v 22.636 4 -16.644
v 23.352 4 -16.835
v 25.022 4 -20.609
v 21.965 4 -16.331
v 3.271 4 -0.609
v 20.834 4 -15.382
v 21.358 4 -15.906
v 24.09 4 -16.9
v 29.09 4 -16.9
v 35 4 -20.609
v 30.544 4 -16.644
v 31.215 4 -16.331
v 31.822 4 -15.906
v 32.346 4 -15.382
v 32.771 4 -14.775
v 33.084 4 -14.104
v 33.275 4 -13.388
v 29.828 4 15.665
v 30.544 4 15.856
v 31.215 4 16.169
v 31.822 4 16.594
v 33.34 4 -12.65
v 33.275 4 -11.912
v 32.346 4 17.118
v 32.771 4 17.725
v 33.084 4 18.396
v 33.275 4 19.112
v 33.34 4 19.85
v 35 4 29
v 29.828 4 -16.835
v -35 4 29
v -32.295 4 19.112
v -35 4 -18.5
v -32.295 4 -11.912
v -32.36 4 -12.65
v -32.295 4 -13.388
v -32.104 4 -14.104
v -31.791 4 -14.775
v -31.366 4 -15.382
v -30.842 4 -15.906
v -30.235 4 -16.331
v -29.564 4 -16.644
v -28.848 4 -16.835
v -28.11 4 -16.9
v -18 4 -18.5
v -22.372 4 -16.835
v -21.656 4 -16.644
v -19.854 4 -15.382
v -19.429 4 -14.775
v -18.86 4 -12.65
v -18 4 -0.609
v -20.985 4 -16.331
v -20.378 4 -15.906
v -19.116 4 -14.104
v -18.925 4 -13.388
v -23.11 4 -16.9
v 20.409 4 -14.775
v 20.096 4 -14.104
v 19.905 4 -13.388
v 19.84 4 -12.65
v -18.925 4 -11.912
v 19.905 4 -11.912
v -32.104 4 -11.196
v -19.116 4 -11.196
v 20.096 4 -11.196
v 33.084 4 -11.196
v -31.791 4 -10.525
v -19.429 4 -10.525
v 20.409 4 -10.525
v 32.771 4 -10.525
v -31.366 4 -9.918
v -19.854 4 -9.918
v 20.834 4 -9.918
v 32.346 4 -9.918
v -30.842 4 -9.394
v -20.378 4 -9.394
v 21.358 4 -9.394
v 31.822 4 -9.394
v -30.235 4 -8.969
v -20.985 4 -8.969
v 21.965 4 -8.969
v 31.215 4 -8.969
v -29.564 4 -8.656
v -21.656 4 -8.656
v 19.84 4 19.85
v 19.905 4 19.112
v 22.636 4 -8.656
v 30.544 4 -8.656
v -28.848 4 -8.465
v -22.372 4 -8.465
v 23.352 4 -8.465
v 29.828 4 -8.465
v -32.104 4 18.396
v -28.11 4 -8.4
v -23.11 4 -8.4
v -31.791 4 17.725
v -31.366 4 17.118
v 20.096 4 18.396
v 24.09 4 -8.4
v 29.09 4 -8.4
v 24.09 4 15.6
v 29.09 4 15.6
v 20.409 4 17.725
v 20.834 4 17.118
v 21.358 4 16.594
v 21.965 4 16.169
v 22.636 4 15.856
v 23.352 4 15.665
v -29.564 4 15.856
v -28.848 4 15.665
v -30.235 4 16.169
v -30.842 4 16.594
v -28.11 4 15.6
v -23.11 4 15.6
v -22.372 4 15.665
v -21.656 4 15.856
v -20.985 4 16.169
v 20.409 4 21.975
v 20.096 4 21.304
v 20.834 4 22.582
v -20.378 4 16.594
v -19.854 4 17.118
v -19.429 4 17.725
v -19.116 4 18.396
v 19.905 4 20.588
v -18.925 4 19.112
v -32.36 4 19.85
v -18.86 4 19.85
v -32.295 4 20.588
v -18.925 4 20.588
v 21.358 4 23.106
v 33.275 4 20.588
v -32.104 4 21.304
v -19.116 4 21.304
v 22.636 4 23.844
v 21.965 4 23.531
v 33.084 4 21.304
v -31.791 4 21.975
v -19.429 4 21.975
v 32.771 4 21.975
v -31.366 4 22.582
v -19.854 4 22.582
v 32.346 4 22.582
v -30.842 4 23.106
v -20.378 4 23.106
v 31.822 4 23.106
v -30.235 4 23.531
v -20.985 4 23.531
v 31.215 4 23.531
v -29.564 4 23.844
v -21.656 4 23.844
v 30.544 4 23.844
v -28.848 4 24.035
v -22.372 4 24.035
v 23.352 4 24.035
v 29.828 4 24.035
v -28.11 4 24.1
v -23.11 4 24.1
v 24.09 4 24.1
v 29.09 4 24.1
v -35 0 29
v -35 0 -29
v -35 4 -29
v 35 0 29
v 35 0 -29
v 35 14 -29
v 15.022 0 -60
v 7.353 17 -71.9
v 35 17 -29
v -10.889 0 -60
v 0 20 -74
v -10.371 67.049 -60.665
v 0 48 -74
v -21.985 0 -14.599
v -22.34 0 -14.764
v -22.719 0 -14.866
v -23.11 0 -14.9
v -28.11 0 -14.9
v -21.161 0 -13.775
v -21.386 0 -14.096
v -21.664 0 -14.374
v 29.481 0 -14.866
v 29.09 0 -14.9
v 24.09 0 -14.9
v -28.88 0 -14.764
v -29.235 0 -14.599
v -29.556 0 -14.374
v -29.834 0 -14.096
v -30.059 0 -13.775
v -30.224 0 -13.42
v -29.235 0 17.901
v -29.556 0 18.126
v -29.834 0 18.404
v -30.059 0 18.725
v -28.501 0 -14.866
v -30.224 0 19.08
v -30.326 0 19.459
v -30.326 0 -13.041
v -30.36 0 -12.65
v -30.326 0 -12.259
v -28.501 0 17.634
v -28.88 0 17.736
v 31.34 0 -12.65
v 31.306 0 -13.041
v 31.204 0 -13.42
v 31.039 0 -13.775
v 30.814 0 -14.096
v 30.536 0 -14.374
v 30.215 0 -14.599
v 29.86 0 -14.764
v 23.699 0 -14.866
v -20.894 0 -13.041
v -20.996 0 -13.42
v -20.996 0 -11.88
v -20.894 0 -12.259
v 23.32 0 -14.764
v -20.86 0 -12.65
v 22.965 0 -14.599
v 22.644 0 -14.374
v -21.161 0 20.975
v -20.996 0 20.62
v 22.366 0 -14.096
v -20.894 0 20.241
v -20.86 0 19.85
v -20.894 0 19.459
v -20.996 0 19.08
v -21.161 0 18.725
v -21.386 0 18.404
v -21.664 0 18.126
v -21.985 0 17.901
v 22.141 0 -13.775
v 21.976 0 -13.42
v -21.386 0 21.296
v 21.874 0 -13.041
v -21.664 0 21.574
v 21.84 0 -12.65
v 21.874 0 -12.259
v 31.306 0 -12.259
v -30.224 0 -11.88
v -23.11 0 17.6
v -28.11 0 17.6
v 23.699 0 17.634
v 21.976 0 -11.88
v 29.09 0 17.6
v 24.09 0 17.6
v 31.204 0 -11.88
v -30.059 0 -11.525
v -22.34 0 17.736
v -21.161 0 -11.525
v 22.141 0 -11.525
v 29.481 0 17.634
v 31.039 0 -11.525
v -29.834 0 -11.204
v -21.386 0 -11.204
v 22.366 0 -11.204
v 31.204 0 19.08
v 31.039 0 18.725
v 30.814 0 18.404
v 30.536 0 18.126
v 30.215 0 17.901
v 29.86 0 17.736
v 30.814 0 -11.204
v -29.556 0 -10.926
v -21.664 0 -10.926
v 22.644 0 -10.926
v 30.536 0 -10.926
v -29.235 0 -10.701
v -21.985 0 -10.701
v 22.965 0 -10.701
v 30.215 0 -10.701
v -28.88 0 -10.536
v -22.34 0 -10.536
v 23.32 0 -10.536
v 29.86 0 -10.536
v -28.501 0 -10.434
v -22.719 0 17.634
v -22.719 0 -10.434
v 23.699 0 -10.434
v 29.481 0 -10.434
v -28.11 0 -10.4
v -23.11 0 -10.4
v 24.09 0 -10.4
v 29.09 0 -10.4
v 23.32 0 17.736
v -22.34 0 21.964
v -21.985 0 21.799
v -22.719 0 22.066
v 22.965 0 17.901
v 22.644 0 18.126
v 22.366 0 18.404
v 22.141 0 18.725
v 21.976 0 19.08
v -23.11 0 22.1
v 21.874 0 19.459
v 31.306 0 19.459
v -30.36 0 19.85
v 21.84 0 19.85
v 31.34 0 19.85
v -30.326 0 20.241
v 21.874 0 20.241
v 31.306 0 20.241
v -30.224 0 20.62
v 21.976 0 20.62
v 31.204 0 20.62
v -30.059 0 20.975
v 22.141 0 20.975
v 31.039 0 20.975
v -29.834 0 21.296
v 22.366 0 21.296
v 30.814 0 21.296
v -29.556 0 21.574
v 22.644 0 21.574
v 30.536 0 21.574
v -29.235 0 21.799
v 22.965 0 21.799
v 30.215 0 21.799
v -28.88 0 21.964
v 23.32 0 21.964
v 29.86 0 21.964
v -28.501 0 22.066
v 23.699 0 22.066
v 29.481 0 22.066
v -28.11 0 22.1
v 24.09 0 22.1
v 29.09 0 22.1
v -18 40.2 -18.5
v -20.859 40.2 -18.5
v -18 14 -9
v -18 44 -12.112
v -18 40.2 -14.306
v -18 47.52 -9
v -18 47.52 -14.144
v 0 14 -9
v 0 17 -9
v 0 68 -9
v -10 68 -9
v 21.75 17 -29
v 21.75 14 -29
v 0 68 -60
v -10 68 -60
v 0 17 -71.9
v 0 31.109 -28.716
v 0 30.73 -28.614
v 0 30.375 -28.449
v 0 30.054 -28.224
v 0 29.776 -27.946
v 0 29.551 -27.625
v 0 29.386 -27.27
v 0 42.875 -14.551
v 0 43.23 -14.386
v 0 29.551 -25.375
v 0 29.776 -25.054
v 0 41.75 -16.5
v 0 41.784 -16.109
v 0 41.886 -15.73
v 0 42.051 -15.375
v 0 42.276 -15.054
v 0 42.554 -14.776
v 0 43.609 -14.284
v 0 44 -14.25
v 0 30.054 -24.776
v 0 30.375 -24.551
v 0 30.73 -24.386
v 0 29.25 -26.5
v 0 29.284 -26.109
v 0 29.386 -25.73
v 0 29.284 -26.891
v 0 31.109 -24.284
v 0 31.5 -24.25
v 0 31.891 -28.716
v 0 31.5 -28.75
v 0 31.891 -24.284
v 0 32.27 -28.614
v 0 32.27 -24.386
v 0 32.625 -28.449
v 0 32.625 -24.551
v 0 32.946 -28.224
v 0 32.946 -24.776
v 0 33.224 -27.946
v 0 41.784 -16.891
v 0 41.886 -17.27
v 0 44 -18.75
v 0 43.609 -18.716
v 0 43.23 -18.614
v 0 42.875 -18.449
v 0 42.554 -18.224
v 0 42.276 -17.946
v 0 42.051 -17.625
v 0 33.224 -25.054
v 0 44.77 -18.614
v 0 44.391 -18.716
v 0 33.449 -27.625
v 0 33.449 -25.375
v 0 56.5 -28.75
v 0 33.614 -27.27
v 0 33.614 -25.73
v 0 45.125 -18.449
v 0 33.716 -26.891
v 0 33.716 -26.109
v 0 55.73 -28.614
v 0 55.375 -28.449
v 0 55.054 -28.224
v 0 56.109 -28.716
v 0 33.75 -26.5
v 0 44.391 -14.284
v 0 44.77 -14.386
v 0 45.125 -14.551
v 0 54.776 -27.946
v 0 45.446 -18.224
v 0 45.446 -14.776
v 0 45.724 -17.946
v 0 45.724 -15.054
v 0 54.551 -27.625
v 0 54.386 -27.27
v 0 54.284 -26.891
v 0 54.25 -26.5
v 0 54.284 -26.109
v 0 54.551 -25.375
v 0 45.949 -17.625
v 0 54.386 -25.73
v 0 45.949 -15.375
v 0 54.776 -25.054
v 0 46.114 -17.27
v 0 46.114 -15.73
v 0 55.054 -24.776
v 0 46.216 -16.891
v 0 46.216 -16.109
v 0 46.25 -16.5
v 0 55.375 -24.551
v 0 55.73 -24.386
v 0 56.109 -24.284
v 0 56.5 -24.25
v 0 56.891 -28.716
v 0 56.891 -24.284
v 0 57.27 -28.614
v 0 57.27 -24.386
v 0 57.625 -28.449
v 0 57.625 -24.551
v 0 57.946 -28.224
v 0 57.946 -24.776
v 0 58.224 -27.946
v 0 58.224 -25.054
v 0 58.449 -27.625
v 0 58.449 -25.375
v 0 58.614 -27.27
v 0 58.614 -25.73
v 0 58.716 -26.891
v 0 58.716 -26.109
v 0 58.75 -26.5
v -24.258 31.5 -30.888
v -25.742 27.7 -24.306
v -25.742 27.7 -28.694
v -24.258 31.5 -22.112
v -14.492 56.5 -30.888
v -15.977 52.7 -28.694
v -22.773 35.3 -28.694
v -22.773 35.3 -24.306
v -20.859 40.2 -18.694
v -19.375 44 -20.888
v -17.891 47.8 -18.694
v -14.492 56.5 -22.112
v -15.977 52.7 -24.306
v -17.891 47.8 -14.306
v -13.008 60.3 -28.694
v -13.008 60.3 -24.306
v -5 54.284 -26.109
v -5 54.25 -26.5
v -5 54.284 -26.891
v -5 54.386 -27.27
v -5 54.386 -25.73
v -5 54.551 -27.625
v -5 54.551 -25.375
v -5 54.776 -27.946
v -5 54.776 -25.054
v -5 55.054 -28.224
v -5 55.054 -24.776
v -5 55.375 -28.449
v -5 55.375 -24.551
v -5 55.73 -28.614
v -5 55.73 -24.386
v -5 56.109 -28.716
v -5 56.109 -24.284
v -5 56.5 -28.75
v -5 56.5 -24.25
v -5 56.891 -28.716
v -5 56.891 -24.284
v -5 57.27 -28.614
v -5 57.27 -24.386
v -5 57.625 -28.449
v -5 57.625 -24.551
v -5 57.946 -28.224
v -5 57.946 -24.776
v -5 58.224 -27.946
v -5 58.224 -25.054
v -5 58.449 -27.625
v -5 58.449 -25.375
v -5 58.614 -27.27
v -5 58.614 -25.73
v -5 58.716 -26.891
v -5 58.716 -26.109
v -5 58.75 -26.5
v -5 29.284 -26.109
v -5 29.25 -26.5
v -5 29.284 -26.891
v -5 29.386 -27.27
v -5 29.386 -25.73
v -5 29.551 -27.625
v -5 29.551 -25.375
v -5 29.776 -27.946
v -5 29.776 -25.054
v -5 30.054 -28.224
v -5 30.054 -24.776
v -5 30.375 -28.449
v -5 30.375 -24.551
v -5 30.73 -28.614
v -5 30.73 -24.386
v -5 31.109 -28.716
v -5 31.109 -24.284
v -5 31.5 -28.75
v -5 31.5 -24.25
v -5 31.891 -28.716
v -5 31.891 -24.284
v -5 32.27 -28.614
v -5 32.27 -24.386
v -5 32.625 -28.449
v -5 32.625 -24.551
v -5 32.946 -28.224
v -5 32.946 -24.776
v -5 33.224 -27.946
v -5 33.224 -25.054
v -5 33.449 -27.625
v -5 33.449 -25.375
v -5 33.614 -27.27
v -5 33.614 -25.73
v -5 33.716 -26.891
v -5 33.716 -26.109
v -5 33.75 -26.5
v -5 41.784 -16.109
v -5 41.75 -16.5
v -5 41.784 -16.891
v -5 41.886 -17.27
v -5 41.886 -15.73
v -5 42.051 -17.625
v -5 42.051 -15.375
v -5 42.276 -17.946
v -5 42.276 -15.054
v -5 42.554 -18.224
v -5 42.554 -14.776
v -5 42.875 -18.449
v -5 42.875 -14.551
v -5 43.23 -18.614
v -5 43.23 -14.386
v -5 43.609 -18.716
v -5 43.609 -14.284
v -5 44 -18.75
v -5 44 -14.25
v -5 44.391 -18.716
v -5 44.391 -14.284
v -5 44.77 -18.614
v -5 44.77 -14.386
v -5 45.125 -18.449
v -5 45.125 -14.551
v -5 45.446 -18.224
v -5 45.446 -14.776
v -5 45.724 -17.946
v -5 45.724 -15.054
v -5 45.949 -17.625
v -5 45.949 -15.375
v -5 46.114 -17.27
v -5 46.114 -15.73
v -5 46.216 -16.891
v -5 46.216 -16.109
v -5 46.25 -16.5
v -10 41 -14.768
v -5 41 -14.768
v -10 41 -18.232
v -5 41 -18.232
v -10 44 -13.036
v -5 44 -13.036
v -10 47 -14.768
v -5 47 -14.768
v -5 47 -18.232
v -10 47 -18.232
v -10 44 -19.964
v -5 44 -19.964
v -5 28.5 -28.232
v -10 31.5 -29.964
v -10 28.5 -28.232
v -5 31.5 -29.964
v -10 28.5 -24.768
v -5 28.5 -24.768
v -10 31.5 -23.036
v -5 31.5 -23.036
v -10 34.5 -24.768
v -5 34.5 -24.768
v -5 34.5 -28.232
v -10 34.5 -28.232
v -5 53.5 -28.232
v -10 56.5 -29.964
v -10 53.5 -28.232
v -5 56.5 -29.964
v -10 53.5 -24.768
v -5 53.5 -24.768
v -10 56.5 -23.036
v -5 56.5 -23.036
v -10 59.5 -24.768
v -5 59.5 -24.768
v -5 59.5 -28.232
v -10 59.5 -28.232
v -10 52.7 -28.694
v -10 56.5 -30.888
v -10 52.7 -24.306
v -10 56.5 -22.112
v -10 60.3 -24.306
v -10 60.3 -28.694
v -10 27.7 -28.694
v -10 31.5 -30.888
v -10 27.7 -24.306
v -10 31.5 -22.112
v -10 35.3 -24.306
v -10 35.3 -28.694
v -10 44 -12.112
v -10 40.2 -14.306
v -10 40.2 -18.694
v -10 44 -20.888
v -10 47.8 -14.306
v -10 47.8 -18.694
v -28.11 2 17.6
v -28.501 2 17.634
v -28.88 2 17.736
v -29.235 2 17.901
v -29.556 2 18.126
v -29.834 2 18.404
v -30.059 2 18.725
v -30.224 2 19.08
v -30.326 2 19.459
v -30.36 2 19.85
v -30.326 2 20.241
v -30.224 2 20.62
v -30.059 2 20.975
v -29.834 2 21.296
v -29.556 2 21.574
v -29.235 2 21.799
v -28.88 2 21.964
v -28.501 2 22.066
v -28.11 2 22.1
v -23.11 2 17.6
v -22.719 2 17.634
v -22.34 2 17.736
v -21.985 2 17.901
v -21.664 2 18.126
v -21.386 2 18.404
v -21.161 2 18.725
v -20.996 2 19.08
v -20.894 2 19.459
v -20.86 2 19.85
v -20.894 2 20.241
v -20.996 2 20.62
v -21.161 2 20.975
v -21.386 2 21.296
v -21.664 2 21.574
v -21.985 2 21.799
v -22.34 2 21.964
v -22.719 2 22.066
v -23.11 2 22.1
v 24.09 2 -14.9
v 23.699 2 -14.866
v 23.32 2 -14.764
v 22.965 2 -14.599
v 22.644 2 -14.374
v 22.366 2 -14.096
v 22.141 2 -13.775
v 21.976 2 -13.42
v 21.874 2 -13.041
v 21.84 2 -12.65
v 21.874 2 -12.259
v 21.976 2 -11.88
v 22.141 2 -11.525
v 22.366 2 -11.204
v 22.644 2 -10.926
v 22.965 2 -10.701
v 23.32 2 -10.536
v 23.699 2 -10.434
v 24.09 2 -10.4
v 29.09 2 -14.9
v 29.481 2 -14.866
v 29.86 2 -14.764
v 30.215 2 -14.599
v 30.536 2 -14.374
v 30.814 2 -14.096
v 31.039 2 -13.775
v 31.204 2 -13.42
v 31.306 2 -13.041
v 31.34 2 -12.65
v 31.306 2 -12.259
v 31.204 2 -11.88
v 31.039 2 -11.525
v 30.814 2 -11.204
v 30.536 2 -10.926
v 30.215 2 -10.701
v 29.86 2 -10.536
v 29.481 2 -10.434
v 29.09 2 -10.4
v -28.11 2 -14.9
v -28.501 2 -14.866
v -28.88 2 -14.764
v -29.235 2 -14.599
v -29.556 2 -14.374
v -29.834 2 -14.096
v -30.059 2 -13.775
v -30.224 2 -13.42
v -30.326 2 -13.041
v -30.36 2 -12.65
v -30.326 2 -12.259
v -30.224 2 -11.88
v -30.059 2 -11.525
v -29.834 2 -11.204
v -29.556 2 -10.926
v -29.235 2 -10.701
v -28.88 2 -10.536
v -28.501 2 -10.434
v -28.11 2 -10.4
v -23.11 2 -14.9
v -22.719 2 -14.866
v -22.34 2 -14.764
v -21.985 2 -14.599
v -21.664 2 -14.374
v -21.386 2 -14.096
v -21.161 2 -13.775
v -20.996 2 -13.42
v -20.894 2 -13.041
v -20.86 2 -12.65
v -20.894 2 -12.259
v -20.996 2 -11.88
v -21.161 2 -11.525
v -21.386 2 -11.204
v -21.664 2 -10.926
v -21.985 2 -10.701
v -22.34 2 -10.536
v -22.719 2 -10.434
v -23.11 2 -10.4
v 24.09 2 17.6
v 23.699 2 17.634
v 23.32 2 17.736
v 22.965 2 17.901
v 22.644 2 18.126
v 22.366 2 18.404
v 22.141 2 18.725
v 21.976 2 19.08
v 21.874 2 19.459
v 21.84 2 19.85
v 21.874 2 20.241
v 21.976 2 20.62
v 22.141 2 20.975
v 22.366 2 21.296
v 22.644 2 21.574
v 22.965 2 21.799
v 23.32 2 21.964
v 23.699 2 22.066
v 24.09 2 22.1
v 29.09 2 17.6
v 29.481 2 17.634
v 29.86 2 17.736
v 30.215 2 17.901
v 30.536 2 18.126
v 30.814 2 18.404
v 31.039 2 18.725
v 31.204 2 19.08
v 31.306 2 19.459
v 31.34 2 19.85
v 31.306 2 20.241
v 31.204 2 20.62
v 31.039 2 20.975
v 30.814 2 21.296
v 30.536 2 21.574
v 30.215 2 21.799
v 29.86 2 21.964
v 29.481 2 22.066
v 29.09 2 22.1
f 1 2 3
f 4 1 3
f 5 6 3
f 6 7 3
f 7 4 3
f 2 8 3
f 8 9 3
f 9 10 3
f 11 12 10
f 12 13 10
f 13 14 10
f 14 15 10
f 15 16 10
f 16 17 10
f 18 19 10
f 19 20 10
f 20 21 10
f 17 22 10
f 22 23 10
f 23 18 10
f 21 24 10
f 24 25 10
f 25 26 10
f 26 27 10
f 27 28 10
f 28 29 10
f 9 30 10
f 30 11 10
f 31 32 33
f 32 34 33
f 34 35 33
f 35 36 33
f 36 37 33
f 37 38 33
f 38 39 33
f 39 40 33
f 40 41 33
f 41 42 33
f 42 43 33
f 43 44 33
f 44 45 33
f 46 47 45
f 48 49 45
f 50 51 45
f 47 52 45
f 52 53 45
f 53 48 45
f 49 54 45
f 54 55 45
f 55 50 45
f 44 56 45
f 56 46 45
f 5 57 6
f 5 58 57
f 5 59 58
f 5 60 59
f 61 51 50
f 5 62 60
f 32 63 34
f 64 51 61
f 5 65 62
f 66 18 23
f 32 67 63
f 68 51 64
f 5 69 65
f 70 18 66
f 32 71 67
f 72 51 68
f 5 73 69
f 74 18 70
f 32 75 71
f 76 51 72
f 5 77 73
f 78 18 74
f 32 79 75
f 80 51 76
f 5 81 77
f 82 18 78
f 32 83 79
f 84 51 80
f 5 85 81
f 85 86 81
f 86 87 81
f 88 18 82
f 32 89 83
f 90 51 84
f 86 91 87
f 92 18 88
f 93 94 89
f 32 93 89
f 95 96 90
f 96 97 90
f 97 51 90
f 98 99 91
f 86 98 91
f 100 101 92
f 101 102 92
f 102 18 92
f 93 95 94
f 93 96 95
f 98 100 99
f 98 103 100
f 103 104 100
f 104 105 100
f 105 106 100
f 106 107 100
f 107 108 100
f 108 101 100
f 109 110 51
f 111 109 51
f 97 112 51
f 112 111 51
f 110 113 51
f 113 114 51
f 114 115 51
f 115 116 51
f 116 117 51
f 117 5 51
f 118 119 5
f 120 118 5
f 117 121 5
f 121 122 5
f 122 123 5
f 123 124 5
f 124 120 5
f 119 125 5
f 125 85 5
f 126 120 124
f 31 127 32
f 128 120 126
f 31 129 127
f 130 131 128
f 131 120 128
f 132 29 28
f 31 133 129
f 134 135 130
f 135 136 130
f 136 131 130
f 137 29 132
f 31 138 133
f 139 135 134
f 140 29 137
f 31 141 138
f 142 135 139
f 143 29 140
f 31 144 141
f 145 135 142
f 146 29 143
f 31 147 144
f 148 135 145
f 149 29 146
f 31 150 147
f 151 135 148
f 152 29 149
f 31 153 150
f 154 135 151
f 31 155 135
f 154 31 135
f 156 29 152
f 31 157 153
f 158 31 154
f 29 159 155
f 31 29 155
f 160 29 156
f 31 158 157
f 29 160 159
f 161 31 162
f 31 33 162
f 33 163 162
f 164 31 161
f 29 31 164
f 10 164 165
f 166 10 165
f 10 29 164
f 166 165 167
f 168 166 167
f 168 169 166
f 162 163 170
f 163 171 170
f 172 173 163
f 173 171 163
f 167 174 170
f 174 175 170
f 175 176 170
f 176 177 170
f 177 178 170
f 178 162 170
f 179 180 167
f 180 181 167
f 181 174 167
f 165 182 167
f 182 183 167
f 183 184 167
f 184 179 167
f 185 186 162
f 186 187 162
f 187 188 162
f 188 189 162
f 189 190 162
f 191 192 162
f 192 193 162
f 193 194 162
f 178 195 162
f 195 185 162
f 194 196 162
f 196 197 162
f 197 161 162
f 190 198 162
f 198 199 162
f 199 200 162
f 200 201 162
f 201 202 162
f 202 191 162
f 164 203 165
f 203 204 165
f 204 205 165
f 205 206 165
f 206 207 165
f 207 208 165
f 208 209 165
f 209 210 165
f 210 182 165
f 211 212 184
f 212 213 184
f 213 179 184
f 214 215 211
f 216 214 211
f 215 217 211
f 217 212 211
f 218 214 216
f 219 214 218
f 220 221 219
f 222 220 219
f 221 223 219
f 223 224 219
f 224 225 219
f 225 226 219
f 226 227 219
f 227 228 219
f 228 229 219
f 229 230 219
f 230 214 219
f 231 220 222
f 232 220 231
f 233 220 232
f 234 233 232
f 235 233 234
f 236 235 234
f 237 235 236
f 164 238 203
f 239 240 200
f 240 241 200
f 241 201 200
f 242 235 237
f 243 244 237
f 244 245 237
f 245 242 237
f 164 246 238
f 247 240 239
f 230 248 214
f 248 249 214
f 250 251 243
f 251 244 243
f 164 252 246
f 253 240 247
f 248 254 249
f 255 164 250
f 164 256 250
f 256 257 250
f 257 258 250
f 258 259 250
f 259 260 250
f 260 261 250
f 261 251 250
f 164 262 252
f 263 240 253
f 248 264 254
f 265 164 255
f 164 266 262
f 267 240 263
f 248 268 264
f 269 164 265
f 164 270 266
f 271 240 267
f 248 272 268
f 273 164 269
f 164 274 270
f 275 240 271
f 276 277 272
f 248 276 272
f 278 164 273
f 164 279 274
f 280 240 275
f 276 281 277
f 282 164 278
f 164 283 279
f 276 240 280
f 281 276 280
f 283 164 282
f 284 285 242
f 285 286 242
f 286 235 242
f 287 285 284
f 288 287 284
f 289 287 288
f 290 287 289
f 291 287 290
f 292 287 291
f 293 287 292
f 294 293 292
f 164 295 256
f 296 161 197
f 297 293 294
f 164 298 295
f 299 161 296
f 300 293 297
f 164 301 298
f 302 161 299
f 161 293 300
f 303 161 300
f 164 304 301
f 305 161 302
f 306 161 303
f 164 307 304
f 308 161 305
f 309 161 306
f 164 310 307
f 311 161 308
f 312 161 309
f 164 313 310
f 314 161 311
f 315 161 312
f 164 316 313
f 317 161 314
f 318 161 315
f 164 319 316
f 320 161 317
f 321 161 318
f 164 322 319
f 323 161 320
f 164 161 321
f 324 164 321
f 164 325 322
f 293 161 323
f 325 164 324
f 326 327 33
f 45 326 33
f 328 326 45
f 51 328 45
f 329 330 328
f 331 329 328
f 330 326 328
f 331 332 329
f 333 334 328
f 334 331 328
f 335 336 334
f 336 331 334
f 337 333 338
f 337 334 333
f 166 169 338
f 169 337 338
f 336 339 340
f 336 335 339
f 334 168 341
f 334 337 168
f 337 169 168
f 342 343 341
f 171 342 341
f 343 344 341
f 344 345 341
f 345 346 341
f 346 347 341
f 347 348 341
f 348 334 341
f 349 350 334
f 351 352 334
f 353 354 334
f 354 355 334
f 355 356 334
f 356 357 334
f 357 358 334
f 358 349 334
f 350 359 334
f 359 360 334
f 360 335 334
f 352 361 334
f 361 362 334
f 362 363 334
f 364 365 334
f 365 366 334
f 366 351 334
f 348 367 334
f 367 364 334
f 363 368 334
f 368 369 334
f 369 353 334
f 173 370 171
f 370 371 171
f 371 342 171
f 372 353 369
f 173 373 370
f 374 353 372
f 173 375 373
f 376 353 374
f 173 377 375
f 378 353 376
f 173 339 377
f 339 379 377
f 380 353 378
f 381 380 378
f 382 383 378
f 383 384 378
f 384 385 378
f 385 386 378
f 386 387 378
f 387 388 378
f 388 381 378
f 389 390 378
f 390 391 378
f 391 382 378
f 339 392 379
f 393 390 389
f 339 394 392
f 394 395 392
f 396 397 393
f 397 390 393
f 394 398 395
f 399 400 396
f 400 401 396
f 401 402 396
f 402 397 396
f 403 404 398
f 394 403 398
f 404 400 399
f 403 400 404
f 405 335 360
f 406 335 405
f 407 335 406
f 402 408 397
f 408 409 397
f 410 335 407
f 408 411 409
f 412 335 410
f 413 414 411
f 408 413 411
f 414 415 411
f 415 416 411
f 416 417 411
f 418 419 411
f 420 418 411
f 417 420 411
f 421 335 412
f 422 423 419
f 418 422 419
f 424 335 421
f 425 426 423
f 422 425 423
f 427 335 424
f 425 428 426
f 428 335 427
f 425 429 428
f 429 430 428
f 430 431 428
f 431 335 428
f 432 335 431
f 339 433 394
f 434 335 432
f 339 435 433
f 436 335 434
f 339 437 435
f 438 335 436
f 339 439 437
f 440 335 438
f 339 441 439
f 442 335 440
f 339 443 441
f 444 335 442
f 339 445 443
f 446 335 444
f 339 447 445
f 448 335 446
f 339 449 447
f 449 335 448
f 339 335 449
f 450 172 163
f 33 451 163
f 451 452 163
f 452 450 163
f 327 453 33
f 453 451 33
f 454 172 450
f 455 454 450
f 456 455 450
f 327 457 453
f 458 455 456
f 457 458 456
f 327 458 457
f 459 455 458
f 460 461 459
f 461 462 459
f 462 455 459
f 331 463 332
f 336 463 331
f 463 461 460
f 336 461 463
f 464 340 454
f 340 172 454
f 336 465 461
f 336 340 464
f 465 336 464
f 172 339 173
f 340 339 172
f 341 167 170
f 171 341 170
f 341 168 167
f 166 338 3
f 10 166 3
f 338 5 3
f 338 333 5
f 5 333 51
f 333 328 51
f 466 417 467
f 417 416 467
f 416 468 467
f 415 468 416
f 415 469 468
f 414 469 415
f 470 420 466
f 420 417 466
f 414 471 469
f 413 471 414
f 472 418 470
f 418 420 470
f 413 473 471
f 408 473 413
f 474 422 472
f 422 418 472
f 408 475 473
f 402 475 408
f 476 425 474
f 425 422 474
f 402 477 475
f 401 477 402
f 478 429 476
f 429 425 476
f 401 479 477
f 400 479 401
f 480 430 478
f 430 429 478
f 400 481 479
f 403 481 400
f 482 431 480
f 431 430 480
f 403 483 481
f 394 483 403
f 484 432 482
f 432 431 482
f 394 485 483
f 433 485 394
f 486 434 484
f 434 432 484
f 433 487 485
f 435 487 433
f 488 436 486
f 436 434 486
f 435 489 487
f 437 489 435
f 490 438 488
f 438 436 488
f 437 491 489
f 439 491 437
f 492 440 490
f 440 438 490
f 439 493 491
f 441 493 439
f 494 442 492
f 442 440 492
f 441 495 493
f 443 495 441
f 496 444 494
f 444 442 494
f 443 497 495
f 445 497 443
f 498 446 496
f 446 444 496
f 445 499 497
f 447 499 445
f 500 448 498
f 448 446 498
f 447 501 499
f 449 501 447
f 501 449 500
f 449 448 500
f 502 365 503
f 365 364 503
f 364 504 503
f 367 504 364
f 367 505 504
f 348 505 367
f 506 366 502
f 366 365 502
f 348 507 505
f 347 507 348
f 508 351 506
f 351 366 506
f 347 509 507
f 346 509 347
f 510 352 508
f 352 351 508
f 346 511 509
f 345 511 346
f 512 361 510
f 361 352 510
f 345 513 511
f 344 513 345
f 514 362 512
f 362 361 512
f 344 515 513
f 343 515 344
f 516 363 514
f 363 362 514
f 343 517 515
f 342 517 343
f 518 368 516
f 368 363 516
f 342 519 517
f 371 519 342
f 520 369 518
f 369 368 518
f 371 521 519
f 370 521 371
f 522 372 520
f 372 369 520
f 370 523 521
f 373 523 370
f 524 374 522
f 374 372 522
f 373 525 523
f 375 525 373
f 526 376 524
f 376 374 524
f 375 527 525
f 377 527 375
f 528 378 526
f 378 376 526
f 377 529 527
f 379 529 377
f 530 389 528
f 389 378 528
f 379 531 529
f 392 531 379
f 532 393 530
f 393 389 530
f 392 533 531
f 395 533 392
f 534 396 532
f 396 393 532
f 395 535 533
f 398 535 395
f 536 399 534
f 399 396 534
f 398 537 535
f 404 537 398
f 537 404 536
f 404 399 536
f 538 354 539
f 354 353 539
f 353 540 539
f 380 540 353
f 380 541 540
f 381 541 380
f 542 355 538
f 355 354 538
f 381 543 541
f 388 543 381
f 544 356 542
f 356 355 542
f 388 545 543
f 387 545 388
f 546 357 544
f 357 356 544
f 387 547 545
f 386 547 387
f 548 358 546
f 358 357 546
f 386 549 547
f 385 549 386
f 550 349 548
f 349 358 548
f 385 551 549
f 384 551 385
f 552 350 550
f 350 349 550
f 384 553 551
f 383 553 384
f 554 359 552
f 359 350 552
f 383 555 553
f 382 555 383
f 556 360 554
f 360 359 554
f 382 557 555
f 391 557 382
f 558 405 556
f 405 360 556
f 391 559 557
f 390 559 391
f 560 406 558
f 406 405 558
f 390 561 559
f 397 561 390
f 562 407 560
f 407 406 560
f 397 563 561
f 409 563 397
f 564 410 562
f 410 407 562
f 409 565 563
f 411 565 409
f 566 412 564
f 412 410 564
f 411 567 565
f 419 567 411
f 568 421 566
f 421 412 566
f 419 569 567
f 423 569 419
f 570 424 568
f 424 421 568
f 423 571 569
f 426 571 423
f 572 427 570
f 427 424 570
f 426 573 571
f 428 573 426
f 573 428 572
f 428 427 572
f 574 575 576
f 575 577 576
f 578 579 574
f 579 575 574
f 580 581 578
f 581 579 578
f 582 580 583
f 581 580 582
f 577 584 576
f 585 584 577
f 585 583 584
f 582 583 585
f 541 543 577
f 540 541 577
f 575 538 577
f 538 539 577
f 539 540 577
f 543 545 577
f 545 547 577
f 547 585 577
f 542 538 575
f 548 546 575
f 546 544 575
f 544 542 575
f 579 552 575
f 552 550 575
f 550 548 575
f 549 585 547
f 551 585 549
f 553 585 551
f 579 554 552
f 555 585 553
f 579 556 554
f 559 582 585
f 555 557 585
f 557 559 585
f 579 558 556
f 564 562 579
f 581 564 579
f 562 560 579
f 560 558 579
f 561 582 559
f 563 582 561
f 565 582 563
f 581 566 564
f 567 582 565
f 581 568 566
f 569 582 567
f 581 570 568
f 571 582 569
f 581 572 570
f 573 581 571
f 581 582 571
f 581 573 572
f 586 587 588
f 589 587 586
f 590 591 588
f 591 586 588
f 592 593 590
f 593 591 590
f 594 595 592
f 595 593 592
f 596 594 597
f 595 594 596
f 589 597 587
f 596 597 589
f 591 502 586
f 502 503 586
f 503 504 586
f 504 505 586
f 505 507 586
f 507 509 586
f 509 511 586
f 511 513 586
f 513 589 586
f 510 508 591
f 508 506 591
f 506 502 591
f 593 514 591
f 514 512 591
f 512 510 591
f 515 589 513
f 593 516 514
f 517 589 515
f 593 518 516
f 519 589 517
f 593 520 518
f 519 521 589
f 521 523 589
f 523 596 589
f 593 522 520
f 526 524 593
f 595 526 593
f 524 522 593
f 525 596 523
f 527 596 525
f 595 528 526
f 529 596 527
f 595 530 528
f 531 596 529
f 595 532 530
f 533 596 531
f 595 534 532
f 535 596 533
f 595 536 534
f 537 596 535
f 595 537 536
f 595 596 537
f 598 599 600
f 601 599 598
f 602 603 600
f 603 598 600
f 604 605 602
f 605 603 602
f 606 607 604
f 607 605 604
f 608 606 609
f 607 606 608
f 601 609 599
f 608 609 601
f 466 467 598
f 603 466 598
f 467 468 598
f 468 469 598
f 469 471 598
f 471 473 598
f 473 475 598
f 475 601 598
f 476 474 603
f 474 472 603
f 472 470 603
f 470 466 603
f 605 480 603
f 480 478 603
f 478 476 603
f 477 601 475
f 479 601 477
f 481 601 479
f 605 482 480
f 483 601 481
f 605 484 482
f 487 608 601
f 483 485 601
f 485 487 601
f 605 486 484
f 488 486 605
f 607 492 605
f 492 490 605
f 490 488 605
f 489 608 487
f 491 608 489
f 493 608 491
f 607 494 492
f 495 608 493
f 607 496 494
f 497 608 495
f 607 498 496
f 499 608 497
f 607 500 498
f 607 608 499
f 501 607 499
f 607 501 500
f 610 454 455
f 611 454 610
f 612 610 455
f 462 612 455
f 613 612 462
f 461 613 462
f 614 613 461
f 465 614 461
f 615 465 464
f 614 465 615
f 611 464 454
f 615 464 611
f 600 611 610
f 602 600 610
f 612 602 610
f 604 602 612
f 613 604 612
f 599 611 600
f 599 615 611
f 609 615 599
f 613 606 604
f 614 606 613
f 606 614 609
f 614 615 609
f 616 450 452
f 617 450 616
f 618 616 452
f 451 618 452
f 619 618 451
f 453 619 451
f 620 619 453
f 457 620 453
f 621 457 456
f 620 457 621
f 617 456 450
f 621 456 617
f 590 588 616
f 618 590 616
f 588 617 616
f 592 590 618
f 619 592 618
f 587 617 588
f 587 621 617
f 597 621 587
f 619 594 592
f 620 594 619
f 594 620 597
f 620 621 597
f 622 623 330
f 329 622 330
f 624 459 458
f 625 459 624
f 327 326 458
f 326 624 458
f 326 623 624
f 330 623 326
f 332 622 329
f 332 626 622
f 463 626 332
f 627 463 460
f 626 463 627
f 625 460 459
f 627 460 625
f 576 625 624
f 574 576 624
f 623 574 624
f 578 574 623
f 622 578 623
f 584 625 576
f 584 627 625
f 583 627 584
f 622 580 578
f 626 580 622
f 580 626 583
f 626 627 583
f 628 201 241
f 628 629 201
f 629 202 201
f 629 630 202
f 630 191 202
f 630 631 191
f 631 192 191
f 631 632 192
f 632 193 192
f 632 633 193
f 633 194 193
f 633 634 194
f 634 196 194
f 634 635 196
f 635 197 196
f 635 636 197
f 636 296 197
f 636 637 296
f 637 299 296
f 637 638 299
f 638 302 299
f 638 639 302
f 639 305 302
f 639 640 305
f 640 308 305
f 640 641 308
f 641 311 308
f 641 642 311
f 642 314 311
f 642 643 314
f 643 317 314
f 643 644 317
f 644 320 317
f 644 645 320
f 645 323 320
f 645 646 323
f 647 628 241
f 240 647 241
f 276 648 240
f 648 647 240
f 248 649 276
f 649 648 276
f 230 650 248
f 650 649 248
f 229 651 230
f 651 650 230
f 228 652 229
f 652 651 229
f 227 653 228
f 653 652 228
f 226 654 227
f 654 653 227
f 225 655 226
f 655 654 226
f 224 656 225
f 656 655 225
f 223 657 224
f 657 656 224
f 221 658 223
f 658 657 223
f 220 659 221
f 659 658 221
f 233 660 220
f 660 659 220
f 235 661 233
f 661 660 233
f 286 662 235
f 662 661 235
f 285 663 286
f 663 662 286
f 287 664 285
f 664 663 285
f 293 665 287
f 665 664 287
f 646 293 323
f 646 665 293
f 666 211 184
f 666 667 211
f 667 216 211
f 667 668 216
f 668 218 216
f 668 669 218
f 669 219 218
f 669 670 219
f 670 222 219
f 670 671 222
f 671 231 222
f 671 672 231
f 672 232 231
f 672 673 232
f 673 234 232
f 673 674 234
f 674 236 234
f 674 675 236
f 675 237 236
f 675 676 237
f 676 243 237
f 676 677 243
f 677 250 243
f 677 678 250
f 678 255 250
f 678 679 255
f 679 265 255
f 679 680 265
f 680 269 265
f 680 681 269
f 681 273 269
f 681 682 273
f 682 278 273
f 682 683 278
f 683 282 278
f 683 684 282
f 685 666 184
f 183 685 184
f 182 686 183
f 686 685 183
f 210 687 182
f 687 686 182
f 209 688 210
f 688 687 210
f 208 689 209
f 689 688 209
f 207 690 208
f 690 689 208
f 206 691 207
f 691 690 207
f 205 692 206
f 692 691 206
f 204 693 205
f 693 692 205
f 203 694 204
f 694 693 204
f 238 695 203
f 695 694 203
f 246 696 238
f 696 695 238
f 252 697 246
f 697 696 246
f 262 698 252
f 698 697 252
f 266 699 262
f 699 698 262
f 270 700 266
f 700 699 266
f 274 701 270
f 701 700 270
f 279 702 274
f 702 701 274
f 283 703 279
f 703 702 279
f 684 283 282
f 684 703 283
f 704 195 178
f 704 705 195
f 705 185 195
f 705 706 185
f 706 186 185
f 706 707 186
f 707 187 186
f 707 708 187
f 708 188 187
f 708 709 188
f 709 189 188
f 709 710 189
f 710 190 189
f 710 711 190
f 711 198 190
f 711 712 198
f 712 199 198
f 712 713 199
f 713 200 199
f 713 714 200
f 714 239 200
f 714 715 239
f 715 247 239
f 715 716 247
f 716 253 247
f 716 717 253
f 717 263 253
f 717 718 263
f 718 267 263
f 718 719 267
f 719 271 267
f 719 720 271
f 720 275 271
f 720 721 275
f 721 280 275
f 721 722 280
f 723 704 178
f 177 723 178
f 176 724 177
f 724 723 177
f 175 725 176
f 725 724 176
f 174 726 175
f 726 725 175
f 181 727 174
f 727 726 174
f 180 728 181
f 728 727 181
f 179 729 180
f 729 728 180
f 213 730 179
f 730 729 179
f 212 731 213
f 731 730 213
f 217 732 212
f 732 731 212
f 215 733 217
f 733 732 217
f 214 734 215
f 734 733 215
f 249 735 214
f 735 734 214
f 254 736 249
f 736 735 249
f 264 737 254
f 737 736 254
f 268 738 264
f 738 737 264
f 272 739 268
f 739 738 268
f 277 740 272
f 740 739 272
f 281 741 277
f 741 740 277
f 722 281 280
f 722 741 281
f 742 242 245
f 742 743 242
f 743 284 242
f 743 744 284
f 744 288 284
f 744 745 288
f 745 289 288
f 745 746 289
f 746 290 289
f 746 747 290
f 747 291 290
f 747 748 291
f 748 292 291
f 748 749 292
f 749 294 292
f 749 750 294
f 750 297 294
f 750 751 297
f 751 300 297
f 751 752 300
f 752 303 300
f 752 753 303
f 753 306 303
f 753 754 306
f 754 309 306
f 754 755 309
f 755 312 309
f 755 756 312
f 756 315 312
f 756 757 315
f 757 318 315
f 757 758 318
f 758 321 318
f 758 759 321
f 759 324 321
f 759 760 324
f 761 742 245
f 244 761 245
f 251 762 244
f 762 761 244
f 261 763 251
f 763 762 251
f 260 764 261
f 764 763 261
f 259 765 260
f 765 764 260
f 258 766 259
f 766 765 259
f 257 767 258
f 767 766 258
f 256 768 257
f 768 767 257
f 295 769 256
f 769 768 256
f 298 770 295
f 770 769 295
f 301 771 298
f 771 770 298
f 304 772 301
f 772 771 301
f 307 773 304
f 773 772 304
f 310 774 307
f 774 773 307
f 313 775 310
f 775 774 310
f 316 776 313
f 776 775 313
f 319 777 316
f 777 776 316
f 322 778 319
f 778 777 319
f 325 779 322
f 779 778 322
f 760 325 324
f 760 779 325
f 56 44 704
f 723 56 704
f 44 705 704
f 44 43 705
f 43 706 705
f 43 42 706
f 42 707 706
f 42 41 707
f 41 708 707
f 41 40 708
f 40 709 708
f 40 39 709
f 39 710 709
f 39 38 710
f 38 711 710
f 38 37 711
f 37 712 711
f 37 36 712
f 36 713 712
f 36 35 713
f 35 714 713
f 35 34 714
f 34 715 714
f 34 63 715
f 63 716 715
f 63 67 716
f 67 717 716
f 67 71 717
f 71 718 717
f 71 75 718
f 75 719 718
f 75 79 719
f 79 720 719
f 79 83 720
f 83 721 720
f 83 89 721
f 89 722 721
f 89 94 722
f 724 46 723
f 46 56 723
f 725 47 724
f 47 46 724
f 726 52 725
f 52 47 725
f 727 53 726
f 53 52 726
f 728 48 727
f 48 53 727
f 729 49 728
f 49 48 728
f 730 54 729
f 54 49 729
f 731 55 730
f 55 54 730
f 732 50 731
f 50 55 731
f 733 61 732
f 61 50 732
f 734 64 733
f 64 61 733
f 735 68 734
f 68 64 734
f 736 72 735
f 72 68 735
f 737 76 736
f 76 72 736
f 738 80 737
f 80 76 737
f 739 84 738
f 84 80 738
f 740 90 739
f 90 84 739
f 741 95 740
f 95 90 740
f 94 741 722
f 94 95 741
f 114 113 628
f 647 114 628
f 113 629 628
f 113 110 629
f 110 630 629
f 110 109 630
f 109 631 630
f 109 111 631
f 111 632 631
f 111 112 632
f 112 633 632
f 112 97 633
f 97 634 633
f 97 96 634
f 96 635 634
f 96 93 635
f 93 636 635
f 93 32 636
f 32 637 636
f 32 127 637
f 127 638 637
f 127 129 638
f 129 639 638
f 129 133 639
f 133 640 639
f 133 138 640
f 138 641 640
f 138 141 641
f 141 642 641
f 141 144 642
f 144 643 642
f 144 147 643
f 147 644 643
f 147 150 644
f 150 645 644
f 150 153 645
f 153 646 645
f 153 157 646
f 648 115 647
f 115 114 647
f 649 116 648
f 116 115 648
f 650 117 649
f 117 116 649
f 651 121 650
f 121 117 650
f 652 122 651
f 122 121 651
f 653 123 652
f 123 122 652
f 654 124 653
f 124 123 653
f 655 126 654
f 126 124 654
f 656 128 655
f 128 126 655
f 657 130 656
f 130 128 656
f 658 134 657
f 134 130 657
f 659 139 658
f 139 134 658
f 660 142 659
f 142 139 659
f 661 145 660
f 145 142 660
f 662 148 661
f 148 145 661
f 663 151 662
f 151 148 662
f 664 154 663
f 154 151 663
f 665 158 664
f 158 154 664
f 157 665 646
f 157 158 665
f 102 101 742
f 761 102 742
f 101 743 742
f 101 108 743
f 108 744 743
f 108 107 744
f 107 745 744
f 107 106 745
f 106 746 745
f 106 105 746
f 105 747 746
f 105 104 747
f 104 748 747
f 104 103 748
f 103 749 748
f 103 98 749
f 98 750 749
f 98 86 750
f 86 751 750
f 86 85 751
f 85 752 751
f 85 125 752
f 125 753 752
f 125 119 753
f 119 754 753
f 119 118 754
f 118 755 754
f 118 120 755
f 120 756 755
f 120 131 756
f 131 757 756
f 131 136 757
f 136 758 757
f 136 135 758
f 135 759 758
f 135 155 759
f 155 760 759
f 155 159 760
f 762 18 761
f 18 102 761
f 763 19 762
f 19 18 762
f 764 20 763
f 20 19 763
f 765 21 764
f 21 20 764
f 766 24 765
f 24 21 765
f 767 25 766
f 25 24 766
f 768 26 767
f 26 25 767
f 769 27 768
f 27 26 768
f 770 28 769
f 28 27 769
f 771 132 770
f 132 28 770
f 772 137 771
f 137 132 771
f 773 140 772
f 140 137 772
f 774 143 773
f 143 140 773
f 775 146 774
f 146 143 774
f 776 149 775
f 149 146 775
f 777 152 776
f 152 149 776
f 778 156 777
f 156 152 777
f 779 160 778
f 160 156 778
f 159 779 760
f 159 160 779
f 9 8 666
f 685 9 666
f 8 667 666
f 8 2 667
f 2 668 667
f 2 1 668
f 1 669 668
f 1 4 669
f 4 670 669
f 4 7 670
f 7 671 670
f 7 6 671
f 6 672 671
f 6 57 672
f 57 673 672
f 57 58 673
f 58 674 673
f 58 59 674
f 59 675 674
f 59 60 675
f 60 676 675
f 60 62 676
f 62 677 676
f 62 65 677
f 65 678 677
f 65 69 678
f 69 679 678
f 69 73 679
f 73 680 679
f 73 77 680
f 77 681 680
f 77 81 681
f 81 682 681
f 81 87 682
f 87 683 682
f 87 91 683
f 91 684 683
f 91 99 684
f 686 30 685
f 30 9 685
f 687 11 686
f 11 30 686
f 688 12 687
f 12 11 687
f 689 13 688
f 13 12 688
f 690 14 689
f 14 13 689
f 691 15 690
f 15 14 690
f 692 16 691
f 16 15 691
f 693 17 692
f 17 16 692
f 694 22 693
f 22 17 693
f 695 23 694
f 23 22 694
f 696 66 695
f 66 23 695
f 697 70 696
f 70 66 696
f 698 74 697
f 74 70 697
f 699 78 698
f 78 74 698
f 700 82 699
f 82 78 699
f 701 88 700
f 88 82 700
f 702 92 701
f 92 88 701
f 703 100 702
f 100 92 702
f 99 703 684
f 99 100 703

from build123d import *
from OCP.BRepFilletAPI import BRepFilletAPI_MakeChamfer

# Parameters (mm, degrees)
BOSS_EXTRUDE1_DEPTH        = 4
BOSS_EXTRUDE2_DEPTH        = 64
SKETCH3_W                  = 35
SKETCH3_H                  = 51
CUT_EXTRUDE1_DEPTH         = 101.369318021
CUT_EXTRUDE2_DEPTH         = 123.474487139
CHAMFER1_SIZE              = 10
CHAMFER1_SIZE2             = 8.390996312
F_4_5_4_5_DIAMETER_HOLE1_D = 4.5
CUT_EXTRUDE3_DEPTH         = 109.166538264
CUT_EXTRUDE4_DEPTH         = 111.113577728
CUT_EXTRUDE5_DEPTH         = 10
CHAMFER3_SIZE              = 2


with BuildPart() as part:
    # Sketch1 → Boss-Extrude1 (new body)
    with BuildSketch(Plane(origin=(0, 0, 0), x_dir=(1, 0, 0), z_dir=(0, 1, 0))):
        Polygon((-35, 29), (0, 74), (6, 74), (35, 29), (35, -29), (-35, -29), align=None)
    extrude(amount=BOSS_EXTRUDE1_DEPTH)

    # Sketch2 → Boss-Extrude2 (add)
    with BuildSketch(Plane(origin=(0, 4, 0), x_dir=(1, 0, 0), z_dir=(0, 1, 0))):
        Polygon((35, 29), (21.75, 29), (0, 9), (-18, 9), (-18, 18.5), (-35, 18.5), (-35, 29), (0, 74), (6, 74), align=None)
    extrude(amount=BOSS_EXTRUDE2_DEPTH)

    # Sketch3 → Cut-Extrude1 (cut, through all)
    with BuildSketch(Plane.XY.offset(-9)):
        Polygon((-35, 4), (-10, 68), (-35, 68), align=None)
        with Locations((17.5, 42.5)):
            Rectangle(SKETCH3_W, SKETCH3_H)
    extrude(amount=-CUT_EXTRUDE1_DEPTH, mode=Mode.SUBTRACT)

    # Sketch4 → Cut-Extrude2 (cut, through all)
    with BuildSketch(Plane(origin=(35, 0, 0), x_dir=(0, 0, -1), z_dir=(1, 0, 0))):
        Polygon((60, 0), (74, 20), (74, 0), align=None)
        Polygon((60, 68), (74, 68), (74, 48), align=None)
    extrude(amount=-CUT_EXTRUDE2_DEPTH, mode=Mode.SUBTRACT)

    # Chamfer1: one chamfer whose edges measure the first distance from different faces: ONE call of the kernel's chamfer builder (chamfer() names one face for all edges)
    chamfer1_edges_1 = [part.edges().sort_by_distance(p)[0] for p in [
        (-9, 4, -9),
    ]]
    chamfer1_side_1 = [part.faces().sort_by_distance(p)[0] for p in [
        (-8.515151515, 34.072854864, -9),
    ]]
    chamfer1_edges_2 = [part.edges().sort_by_distance(p)[0] for p in [
        (10.875, 4, -19),
    ]]
    chamfer1_side_2 = [part.faces().sort_by_distance(p)[0] for p in [
        (10.875, 10.5, -19),
    ]]
    chamfer1_edges_3 = [part.edges().sort_by_distance(p)[0] for p in [
        (28.375, 4, -29),
    ]]
    chamfer1_side_3 = [part.faces().sort_by_distance(p)[0] for p in [
        (28.375, 10.5, -29),
    ]]
    chamfer1 = BRepFilletAPI_MakeChamfer(part.part.solid().wrapped)
    for e in chamfer1_edges_1:
        chamfer1.Add(CHAMFER1_SIZE, CHAMFER1_SIZE2, e.wrapped, chamfer1_side_1[0].wrapped)  # the first distance lies on this face
    for e in chamfer1_edges_2:
        chamfer1.Add(CHAMFER1_SIZE, CHAMFER1_SIZE2, e.wrapped, chamfer1_side_2[0].wrapped)  # the first distance lies on this face
    for e in chamfer1_edges_3:
        chamfer1.Add(CHAMFER1_SIZE, CHAMFER1_SIZE2, e.wrapped, chamfer1_side_3[0].wrapped)  # the first distance lies on this face
    add(Compound.cast(chamfer1.Shape()), mode=Mode.REPLACE)

    # Ø4.5 (4.5) Diameter Hole1 (through all)
    with Locations(Plane(origin=(0, 0, 0), x_dir=(0, 0, -1), z_dir=(1, 0, 0))):
        with Locations((16.5, 44), (26.5, 31.5), (26.5, 56.5)):
            Hole(F_4_5_4_5_DIAMETER_HOLE1_D / 2)

    # Sketch9 → Cut-Extrude3 (cut, through all)
    with BuildSketch(Plane(origin=(-5, 0, 0), x_dir=(0, 0, -1), z_dir=(1, 0, 0))):
        Polygon((29.964101615, 56.5), (28.232050808, 59.5), (24.767949192, 59.5), (23.035898385, 56.5), (24.767949192, 53.5), (28.232050808, 53.5), align=None)
        Polygon((29.964101615, 31.5), (28.232050808, 34.5), (24.767949192, 34.5), (23.035898385, 31.5), (24.767949192, 28.5), (28.232050808, 28.5), align=None)
        Polygon((19.964101615, 44), (18.232050808, 47), (14.767949192, 47), (13.035898385, 44), (14.767949192, 41), (18.232050808, 41), align=None)
    extrude(amount=-CUT_EXTRUDE3_DEPTH, mode=Mode.SUBTRACT)

    # Sketch10 → Cut-Extrude4 (cut, through all)
    with BuildSketch(Plane(origin=(-10, 0, 0), x_dir=(0, 0, -1), z_dir=(1, 0, 0))):
        Polygon((30.887862046, 56.5), (28.693931023, 60.3), (24.306068977, 60.3), (22.112137954, 56.5), (24.306068977, 52.7), (28.693931023, 52.7), align=None)
        Polygon((20.887862046, 44), (18.693931023, 47.8), (14.306068977, 47.8), (12.112137954, 44), (14.306068977, 40.2), (18.693931023, 40.2), align=None)
        Polygon((30.887862046, 31.5), (28.693931023, 35.3), (24.306068977, 35.3), (22.112137954, 31.5), (24.306068977, 27.7), (28.693931023, 27.7), align=None)
    extrude(amount=-CUT_EXTRUDE4_DEPTH, mode=Mode.SUBTRACT)

    # Sketch11 → Cut-Extrude5 (cut)
    with BuildSketch(Plane(origin=(0, 4, 0), x_dir=(1, 0, 0), z_dir=(0, 1, 0))):
        with BuildLine():
            Line((-28.11, -17.6), (-23.11, -17.6))
            ThreePointArc((-23.11, -17.6), (-20.86, -19.85), (-23.11, -22.1))
            Line((-23.11, -22.1), (-28.11, -22.1))
            ThreePointArc((-28.11, -22.1), (-30.36, -19.85), (-28.11, -17.6))
        make_face()
        with BuildLine():
            Line((24.09, -17.6), (29.09, -17.6))
            ThreePointArc((29.09, -17.6), (31.34, -19.85), (29.09, -22.1))
            Line((29.09, -22.1), (24.09, -22.1))
            ThreePointArc((24.09, -22.1), (21.84, -19.85), (24.09, -17.6))
        make_face()
        with BuildLine():
            Line((-28.11, 14.9), (-23.11, 14.9))
            ThreePointArc((-23.11, 14.9), (-20.86, 12.65), (-23.11, 10.4))
            Line((-23.11, 10.4), (-28.11, 10.4))
            ThreePointArc((-28.11, 10.4), (-30.36, 12.65), (-28.11, 14.9))
        make_face()
        with BuildLine():
            Line((24.09, 14.9), (29.09, 14.9))
            ThreePointArc((29.09, 14.9), (31.34, 12.65), (29.09, 10.4))
            Line((29.09, 10.4), (24.09, 10.4))
            ThreePointArc((24.09, 10.4), (21.84, 12.65), (24.09, 14.9))
        make_face()
    extrude(amount=-CUT_EXTRUDE5_DEPTH, mode=Mode.SUBTRACT)

    # Chamfer3
    chamfer3_edges = [part.edges().sort_by_distance(p)[0] for p in [
        (21.84, 4, 19.85),
        (26.59, 4, 22.1),
        (31.34, 4, 19.85),
        (26.59, 4, 17.6),
        (-30.36, 4, -12.65),
        (-25.61, 4, -10.4),
        (-20.86, 4, -12.65),
        (-25.61, 4, -14.9),
        (21.84, 4, -12.65),
        (26.59, 4, -10.4),
        (31.34, 4, -12.65),
        (26.59, 4, -14.9),
        (-30.36, 4, 19.85),
        (-25.61, 4, 22.1),
        (-20.86, 4, 19.85),
        (-25.61, 4, 17.6),
    ]]
    chamfer(chamfer3_edges, length=CHAMFER3_SIZE)


solid = part.part
